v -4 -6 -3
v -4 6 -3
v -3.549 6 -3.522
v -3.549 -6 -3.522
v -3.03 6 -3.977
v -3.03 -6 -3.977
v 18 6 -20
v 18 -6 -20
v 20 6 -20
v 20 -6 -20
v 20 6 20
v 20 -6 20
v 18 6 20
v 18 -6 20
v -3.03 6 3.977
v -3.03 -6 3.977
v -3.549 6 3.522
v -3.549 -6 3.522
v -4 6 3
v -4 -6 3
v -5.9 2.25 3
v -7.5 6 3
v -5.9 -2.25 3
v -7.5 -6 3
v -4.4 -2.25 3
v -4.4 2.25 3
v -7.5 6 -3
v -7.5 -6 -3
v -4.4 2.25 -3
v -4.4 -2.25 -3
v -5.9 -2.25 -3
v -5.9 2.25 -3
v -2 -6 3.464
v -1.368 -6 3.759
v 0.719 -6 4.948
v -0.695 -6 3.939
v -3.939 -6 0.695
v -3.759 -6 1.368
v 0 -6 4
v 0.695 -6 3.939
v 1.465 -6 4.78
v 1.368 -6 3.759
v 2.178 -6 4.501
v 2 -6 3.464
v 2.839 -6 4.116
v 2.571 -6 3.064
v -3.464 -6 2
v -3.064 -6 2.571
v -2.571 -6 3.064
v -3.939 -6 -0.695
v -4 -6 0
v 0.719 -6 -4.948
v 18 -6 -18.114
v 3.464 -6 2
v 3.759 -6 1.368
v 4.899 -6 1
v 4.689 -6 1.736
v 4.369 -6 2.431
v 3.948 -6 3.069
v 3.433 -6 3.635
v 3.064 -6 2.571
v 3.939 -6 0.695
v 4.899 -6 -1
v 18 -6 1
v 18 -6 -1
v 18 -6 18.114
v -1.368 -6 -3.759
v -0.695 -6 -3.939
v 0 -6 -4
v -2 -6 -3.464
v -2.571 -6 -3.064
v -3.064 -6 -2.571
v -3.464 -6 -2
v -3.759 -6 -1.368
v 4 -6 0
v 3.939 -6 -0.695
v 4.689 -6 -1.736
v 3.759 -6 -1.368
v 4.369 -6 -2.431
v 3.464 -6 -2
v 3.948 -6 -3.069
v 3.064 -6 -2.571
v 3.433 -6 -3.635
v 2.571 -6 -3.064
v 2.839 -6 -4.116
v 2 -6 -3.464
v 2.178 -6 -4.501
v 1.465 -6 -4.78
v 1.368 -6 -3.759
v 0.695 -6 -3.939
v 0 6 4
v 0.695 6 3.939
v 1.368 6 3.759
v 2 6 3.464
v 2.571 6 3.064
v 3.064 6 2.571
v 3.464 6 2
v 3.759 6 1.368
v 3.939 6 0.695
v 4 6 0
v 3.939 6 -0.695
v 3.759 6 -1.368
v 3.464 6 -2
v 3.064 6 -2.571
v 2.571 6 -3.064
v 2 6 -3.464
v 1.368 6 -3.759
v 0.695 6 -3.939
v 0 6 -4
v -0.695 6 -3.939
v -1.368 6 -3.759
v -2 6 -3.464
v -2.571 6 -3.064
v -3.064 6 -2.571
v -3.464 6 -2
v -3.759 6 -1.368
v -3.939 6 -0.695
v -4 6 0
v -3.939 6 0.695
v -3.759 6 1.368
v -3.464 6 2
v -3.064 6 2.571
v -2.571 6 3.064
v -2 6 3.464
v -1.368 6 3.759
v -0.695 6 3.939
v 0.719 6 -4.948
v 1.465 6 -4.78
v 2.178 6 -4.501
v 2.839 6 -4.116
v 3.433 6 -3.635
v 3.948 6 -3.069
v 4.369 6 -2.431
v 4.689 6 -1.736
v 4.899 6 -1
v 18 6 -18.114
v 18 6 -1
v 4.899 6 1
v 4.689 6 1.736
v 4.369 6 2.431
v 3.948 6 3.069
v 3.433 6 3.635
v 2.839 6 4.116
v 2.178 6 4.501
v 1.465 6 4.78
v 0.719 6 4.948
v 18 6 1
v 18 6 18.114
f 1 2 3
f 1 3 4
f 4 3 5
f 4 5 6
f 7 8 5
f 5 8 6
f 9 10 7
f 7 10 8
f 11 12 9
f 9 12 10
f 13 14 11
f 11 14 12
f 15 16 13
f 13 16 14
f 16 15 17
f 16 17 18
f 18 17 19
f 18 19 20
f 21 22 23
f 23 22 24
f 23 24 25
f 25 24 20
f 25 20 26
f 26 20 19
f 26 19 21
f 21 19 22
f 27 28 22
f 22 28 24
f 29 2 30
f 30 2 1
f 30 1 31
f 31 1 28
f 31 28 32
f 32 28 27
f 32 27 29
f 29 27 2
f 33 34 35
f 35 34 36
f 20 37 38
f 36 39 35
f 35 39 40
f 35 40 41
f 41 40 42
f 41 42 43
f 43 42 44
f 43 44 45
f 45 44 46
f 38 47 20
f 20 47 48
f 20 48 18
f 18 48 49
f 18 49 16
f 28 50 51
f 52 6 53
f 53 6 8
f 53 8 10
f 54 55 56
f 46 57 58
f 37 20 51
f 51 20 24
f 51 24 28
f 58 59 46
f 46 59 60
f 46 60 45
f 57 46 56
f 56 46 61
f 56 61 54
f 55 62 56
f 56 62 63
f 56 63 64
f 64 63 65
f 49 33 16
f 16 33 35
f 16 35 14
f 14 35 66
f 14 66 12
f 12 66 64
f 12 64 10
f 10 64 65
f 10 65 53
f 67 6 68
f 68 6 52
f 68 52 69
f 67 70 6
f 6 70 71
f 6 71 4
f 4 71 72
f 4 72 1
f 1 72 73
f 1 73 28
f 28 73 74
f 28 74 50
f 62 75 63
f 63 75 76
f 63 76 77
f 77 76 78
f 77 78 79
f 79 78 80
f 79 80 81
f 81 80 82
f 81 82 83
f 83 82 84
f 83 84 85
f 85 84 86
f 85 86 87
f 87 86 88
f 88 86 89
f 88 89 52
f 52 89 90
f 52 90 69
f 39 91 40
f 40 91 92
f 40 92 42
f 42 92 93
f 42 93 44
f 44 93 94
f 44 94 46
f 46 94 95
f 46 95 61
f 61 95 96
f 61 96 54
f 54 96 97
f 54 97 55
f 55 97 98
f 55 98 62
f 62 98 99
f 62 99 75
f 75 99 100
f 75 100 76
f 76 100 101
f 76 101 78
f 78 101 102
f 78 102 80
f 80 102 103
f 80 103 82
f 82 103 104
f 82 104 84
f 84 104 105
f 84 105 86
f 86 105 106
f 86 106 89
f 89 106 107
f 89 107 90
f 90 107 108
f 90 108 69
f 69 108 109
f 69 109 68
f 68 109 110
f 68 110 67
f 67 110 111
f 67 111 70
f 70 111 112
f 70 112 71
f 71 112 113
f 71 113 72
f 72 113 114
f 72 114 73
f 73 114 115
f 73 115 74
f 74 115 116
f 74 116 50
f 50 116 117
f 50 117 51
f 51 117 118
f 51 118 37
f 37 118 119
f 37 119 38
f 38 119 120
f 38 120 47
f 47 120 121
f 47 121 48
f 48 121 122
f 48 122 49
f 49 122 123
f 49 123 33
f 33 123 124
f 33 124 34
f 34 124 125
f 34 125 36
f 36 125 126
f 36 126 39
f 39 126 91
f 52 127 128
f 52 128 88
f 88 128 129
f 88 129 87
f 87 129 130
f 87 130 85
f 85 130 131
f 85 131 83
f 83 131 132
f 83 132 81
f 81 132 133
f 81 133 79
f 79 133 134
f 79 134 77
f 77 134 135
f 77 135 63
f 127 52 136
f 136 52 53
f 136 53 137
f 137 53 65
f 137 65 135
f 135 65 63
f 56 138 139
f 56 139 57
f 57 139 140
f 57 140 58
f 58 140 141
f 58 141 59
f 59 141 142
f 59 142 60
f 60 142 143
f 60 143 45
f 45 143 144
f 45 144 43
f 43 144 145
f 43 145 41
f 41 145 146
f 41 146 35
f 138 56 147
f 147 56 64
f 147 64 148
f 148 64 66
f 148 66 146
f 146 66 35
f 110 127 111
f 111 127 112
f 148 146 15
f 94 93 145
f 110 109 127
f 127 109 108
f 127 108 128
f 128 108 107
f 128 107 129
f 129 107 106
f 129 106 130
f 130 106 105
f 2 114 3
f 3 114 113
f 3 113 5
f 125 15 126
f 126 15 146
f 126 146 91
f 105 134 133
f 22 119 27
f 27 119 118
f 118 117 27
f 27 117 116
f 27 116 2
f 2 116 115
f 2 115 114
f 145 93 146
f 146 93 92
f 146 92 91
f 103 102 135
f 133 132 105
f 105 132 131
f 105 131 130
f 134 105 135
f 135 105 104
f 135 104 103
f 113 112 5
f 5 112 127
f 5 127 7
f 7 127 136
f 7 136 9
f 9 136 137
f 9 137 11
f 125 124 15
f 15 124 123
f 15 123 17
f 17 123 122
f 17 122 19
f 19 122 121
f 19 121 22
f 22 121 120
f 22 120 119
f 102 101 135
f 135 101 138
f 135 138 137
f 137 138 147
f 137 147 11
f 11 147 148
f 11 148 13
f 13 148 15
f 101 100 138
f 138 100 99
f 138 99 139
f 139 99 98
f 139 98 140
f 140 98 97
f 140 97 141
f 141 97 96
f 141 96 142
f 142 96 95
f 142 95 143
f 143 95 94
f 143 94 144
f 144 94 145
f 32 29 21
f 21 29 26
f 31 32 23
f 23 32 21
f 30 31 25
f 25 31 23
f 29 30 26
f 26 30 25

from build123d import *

# Parameters (mm, degrees)
BOSS_EXTRUDE1_DEPTH      = 6
BOSS_EXTRUDE1_DEPTH_BACK = 6
SKETCH1_R                = 4
SKETCH2_W                = 1.5
SKETCH2_H                = 4.5
CUT_EXTRUDE1_DEPTH       = 32.064449134


with BuildPart() as part:
    # Sketch1 → Boss-Extrude1 (new, two sides: drawn at the far end of the back side and taken through both)
    with BuildSketch(Plane(origin=(0, 0, 0), x_dir=(1, 0, 0), z_dir=(0, 1, 0)).offset(-BOSS_EXTRUDE1_DEPTH_BACK)):
        with BuildLine():
            Line((-4, 3), (-7.5, 3))
            Line((-7.5, 3), (-7.5, -3))
            Line((-7.5, -3), (-4, -3))
            ThreePointArc((-4, -3), (-3.548890872, -3.522126287), (-3.030194493, -3.977175044))
            Line((-3.030194493, -3.977175044), (18, -20))
            Line((18, -20), (20, -20))
            Line((20, -20), (20, -1.905552368))
            Line((20, -1.905552368), (20, 20))
            Line((20, 20), (18, 20))
            Line((18, 20), (-3.030194493, 3.977175044))
            ThreePointArc((-3.030194493, 3.977175044), (-3.548890872, 3.522126287), (-4, 3))
        make_face()
        Circle(SKETCH1_R, mode=Mode.SUBTRACT)
        with BuildLine():
            Line((4.898979486, 1), (18, 1))
            Line((18, 1), (18, 18.114239399))
            Line((18, 18.114239399), (0.719134947, 4.948014241))
            ThreePointArc((0.719134947, 4.948014241), (3.433293835, 3.634899372), (4.898979486, 1))
        make_face(mode=Mode.SUBTRACT)
        with BuildLine():
            Line((4.898979486, -1), (18, -1))
            Line((18, -1), (18, -18.114239399))
            Line((18, -18.114239399), (0.719134947, -4.948014241))
            ThreePointArc((0.719134947, -4.948014241), (3.433293835, -3.634899372), (4.898979486, -1))
        make_face(mode=Mode.SUBTRACT)
    extrude(amount=BOSS_EXTRUDE1_DEPTH + BOSS_EXTRUDE1_DEPTH_BACK)

    # Sketch2 → Cut-Extrude1 (cut, through all)
    with BuildSketch(Plane(origin=(0, 0, -3), x_dir=(-1, 0, 0), z_dir=(0, 0, -1))):
        with Locations((5.15, 0)):
            Rectangle(SKETCH2_W, SKETCH2_H)
    extrude(amount=-CUT_EXTRUDE1_DEPTH, mode=Mode.SUBTRACT)


solid = part.part
